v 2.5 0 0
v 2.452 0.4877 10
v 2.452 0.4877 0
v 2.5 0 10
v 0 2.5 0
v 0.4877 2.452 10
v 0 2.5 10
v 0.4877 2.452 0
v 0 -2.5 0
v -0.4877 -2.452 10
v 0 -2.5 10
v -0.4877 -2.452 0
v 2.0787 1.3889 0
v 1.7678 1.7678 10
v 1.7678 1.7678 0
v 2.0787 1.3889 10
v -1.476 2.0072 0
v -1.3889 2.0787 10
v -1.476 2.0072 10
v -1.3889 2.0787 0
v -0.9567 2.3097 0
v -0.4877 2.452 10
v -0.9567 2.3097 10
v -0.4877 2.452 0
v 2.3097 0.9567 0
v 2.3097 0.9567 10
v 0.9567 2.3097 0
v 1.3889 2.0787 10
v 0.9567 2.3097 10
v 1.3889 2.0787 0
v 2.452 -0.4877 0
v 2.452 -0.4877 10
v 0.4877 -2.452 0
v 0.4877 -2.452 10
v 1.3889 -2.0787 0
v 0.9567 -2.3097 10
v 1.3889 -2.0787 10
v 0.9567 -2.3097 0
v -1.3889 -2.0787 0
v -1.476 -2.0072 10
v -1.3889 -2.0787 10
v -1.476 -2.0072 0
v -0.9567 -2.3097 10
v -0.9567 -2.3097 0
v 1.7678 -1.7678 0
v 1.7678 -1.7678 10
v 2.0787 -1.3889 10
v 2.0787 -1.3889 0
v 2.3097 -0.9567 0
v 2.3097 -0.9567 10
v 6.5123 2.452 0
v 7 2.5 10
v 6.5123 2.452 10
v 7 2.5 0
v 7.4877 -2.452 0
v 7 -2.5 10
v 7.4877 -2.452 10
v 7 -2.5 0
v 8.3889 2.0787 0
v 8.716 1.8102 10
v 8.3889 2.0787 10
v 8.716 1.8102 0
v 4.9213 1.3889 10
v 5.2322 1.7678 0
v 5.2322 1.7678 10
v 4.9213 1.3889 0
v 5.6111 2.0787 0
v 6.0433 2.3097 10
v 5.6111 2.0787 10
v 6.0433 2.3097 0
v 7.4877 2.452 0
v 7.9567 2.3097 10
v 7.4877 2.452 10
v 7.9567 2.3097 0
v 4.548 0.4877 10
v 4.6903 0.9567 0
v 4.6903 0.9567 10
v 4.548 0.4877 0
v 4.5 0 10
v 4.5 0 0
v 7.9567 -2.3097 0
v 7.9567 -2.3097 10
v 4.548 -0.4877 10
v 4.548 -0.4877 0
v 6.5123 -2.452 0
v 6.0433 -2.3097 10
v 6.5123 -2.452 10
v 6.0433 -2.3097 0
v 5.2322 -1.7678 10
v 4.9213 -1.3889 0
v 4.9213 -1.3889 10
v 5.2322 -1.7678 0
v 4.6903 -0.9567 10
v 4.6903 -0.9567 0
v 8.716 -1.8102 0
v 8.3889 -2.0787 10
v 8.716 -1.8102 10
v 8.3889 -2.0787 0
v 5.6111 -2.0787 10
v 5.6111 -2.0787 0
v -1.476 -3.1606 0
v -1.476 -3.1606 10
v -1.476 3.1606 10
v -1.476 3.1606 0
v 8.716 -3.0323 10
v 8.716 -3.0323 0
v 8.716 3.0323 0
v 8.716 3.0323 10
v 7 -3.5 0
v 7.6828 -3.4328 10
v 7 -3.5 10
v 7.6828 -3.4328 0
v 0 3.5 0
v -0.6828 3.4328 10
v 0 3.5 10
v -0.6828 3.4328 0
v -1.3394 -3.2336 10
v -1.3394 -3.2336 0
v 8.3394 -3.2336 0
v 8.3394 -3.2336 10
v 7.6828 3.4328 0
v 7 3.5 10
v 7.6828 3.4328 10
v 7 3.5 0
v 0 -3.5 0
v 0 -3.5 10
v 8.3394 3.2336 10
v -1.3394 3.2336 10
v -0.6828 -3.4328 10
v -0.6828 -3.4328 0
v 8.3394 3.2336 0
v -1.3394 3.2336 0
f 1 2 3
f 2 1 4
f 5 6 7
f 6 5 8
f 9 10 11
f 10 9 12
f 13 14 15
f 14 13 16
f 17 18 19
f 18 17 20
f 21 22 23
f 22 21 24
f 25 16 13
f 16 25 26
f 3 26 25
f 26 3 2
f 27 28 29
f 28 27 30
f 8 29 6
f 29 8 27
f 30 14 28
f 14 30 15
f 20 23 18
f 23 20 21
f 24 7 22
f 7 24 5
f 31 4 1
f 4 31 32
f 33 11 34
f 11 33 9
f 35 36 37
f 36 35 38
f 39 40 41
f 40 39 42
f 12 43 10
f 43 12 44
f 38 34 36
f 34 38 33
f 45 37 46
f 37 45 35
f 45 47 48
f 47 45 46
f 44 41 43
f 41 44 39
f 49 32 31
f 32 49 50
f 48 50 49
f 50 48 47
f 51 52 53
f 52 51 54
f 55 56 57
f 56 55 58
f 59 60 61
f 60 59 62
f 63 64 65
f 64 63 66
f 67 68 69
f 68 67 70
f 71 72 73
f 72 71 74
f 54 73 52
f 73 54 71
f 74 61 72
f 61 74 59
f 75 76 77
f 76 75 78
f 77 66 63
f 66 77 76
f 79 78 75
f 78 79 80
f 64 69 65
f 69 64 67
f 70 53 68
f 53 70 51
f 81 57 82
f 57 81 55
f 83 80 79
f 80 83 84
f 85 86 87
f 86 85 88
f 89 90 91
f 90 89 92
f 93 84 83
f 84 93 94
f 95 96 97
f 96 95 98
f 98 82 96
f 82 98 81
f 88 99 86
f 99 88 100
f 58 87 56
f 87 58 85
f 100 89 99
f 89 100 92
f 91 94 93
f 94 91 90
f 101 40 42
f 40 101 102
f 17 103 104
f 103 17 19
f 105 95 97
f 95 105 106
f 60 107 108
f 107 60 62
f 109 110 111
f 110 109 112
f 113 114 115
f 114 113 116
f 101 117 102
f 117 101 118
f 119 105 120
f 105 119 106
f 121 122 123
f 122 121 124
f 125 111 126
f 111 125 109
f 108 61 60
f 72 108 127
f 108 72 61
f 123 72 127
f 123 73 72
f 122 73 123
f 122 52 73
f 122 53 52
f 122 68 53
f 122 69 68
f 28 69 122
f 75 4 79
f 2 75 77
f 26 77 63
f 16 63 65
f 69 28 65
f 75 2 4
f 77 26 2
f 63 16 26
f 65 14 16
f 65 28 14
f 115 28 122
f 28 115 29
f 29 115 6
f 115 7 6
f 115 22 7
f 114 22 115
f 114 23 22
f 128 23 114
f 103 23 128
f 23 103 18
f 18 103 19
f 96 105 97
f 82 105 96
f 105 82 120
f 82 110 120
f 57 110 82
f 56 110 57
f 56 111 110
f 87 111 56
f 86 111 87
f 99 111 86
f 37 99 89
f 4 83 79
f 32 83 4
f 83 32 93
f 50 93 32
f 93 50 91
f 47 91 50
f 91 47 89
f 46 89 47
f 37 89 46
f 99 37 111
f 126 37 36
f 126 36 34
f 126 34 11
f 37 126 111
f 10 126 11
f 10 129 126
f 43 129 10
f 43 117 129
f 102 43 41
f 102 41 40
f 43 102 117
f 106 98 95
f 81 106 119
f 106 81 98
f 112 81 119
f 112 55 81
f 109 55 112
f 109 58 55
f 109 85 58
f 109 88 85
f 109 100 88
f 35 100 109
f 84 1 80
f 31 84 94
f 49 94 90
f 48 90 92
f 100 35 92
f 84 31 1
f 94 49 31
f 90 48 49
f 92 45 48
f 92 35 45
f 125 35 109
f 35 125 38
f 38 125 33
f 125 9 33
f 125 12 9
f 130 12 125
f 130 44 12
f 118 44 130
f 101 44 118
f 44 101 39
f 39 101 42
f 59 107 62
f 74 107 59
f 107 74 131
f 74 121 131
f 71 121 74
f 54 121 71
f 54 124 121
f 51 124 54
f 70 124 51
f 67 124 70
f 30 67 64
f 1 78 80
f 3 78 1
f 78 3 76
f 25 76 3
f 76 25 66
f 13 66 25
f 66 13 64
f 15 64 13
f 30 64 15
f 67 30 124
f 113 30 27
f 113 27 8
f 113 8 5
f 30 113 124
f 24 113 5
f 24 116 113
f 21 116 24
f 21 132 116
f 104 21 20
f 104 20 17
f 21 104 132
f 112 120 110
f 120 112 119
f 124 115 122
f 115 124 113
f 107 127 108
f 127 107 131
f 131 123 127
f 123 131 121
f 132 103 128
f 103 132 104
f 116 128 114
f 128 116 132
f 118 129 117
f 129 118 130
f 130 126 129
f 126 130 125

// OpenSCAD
// Generated by SolidPython 1.0.5 on 2021-09-16 21:15:34
$fn = 32;


difference() {
	hull() {
		union() {
			translate(v = [0, 0, 0]) {
				cylinder(h = 10, r = 3.5000000000);
			}
			translate(v = [7.0000000000, 0, 0]) {
				cylinder(h = 10, r = 3.5000000000);
			}
		}
	}
	union() {
		translate(v = [0, 0, -0.0100000000]) {
			cylinder(h = 10.0200000000, r = 2.5000000000);
		}
		translate(v = [7.0000000000, 0, -0.0100000000]) {
			cylinder(h = 10.0200000000, r = 2.5000000000);
		}
		translate(v = [-3.5000000000, -3.5000000000, -0.0100000000]) {
			cube(size = [2.0240000000, 7.0000000000, 10.0200000000]);
		}
		translate(v = [8.7160000000, -3.5000000000, -0.0100000000]) {
			cube(size = [1.7840000000, 7.0000000000, 10.0200000000]);
		}
	}
}
/***********************************************
*********      SolidPython code:      **********
************************************************
 
from solid import *
from solid.utils import *
import math

cm = 10
z = 0.01

wire_radius = 0.25*cm
height = 1*cm
wall_thickness = 0.1*cm
gap_between_wires = 0.2*cm
input_gap_left = 0.32*cm
input_gap_right = 0.28*cm

second_wire_distance = gap_between_wires + 2*wire_radius

input_left = input_gap_left * math.cos(
    math.pi/2 - math.asin(input_gap_left / 2 / wire_radius)
) / 2 + wall_thickness
input_right = input_gap_right * math.cos(
    math.pi/2 - math.asin(input_gap_right / 2 / wire_radius)
) / 2 + wall_thickness

wire_hole = cylinder(wire_radius, height + 2*z)
wire_input_left = cube(
    [input_left, 2*(wire_radius+wall_thickness), height + 2*z])
wire_input_left = cube(
    [input_left, 2*(wire_radius+wall_thickness), height + 2*z])
wire_input_right = cube(
    [input_right, 2*(wire_radius+wall_thickness), height + 2*z])
wire_holes = (
    translate([0, 0, -z])(wire_hole) +
    translate([second_wire_distance, 0, -z])(wire_hole) +
    translate([-wire_radius-wall_thickness, -
               wire_radius-wall_thickness, -z])(wire_input_left) +
    translate([second_wire_distance+wire_radius+wall_thickness-input_right, -
               wire_radius-wall_thickness, -z])(wire_input_right)
)

wire_shell = cylinder(wire_radius + wall_thickness, height)
wire_shells = (
    translate([0, 0, 0])(wire_shell) +
    translate([second_wire_distance, 0, 0])(wire_shell)
)

clip = hull()(wire_shells) - wire_holes

fn = 32
scad_render_to_file(clip, "cable-clip.scad",
                    file_header='$fn = %d;' % fn)
 
 
************************************************/
